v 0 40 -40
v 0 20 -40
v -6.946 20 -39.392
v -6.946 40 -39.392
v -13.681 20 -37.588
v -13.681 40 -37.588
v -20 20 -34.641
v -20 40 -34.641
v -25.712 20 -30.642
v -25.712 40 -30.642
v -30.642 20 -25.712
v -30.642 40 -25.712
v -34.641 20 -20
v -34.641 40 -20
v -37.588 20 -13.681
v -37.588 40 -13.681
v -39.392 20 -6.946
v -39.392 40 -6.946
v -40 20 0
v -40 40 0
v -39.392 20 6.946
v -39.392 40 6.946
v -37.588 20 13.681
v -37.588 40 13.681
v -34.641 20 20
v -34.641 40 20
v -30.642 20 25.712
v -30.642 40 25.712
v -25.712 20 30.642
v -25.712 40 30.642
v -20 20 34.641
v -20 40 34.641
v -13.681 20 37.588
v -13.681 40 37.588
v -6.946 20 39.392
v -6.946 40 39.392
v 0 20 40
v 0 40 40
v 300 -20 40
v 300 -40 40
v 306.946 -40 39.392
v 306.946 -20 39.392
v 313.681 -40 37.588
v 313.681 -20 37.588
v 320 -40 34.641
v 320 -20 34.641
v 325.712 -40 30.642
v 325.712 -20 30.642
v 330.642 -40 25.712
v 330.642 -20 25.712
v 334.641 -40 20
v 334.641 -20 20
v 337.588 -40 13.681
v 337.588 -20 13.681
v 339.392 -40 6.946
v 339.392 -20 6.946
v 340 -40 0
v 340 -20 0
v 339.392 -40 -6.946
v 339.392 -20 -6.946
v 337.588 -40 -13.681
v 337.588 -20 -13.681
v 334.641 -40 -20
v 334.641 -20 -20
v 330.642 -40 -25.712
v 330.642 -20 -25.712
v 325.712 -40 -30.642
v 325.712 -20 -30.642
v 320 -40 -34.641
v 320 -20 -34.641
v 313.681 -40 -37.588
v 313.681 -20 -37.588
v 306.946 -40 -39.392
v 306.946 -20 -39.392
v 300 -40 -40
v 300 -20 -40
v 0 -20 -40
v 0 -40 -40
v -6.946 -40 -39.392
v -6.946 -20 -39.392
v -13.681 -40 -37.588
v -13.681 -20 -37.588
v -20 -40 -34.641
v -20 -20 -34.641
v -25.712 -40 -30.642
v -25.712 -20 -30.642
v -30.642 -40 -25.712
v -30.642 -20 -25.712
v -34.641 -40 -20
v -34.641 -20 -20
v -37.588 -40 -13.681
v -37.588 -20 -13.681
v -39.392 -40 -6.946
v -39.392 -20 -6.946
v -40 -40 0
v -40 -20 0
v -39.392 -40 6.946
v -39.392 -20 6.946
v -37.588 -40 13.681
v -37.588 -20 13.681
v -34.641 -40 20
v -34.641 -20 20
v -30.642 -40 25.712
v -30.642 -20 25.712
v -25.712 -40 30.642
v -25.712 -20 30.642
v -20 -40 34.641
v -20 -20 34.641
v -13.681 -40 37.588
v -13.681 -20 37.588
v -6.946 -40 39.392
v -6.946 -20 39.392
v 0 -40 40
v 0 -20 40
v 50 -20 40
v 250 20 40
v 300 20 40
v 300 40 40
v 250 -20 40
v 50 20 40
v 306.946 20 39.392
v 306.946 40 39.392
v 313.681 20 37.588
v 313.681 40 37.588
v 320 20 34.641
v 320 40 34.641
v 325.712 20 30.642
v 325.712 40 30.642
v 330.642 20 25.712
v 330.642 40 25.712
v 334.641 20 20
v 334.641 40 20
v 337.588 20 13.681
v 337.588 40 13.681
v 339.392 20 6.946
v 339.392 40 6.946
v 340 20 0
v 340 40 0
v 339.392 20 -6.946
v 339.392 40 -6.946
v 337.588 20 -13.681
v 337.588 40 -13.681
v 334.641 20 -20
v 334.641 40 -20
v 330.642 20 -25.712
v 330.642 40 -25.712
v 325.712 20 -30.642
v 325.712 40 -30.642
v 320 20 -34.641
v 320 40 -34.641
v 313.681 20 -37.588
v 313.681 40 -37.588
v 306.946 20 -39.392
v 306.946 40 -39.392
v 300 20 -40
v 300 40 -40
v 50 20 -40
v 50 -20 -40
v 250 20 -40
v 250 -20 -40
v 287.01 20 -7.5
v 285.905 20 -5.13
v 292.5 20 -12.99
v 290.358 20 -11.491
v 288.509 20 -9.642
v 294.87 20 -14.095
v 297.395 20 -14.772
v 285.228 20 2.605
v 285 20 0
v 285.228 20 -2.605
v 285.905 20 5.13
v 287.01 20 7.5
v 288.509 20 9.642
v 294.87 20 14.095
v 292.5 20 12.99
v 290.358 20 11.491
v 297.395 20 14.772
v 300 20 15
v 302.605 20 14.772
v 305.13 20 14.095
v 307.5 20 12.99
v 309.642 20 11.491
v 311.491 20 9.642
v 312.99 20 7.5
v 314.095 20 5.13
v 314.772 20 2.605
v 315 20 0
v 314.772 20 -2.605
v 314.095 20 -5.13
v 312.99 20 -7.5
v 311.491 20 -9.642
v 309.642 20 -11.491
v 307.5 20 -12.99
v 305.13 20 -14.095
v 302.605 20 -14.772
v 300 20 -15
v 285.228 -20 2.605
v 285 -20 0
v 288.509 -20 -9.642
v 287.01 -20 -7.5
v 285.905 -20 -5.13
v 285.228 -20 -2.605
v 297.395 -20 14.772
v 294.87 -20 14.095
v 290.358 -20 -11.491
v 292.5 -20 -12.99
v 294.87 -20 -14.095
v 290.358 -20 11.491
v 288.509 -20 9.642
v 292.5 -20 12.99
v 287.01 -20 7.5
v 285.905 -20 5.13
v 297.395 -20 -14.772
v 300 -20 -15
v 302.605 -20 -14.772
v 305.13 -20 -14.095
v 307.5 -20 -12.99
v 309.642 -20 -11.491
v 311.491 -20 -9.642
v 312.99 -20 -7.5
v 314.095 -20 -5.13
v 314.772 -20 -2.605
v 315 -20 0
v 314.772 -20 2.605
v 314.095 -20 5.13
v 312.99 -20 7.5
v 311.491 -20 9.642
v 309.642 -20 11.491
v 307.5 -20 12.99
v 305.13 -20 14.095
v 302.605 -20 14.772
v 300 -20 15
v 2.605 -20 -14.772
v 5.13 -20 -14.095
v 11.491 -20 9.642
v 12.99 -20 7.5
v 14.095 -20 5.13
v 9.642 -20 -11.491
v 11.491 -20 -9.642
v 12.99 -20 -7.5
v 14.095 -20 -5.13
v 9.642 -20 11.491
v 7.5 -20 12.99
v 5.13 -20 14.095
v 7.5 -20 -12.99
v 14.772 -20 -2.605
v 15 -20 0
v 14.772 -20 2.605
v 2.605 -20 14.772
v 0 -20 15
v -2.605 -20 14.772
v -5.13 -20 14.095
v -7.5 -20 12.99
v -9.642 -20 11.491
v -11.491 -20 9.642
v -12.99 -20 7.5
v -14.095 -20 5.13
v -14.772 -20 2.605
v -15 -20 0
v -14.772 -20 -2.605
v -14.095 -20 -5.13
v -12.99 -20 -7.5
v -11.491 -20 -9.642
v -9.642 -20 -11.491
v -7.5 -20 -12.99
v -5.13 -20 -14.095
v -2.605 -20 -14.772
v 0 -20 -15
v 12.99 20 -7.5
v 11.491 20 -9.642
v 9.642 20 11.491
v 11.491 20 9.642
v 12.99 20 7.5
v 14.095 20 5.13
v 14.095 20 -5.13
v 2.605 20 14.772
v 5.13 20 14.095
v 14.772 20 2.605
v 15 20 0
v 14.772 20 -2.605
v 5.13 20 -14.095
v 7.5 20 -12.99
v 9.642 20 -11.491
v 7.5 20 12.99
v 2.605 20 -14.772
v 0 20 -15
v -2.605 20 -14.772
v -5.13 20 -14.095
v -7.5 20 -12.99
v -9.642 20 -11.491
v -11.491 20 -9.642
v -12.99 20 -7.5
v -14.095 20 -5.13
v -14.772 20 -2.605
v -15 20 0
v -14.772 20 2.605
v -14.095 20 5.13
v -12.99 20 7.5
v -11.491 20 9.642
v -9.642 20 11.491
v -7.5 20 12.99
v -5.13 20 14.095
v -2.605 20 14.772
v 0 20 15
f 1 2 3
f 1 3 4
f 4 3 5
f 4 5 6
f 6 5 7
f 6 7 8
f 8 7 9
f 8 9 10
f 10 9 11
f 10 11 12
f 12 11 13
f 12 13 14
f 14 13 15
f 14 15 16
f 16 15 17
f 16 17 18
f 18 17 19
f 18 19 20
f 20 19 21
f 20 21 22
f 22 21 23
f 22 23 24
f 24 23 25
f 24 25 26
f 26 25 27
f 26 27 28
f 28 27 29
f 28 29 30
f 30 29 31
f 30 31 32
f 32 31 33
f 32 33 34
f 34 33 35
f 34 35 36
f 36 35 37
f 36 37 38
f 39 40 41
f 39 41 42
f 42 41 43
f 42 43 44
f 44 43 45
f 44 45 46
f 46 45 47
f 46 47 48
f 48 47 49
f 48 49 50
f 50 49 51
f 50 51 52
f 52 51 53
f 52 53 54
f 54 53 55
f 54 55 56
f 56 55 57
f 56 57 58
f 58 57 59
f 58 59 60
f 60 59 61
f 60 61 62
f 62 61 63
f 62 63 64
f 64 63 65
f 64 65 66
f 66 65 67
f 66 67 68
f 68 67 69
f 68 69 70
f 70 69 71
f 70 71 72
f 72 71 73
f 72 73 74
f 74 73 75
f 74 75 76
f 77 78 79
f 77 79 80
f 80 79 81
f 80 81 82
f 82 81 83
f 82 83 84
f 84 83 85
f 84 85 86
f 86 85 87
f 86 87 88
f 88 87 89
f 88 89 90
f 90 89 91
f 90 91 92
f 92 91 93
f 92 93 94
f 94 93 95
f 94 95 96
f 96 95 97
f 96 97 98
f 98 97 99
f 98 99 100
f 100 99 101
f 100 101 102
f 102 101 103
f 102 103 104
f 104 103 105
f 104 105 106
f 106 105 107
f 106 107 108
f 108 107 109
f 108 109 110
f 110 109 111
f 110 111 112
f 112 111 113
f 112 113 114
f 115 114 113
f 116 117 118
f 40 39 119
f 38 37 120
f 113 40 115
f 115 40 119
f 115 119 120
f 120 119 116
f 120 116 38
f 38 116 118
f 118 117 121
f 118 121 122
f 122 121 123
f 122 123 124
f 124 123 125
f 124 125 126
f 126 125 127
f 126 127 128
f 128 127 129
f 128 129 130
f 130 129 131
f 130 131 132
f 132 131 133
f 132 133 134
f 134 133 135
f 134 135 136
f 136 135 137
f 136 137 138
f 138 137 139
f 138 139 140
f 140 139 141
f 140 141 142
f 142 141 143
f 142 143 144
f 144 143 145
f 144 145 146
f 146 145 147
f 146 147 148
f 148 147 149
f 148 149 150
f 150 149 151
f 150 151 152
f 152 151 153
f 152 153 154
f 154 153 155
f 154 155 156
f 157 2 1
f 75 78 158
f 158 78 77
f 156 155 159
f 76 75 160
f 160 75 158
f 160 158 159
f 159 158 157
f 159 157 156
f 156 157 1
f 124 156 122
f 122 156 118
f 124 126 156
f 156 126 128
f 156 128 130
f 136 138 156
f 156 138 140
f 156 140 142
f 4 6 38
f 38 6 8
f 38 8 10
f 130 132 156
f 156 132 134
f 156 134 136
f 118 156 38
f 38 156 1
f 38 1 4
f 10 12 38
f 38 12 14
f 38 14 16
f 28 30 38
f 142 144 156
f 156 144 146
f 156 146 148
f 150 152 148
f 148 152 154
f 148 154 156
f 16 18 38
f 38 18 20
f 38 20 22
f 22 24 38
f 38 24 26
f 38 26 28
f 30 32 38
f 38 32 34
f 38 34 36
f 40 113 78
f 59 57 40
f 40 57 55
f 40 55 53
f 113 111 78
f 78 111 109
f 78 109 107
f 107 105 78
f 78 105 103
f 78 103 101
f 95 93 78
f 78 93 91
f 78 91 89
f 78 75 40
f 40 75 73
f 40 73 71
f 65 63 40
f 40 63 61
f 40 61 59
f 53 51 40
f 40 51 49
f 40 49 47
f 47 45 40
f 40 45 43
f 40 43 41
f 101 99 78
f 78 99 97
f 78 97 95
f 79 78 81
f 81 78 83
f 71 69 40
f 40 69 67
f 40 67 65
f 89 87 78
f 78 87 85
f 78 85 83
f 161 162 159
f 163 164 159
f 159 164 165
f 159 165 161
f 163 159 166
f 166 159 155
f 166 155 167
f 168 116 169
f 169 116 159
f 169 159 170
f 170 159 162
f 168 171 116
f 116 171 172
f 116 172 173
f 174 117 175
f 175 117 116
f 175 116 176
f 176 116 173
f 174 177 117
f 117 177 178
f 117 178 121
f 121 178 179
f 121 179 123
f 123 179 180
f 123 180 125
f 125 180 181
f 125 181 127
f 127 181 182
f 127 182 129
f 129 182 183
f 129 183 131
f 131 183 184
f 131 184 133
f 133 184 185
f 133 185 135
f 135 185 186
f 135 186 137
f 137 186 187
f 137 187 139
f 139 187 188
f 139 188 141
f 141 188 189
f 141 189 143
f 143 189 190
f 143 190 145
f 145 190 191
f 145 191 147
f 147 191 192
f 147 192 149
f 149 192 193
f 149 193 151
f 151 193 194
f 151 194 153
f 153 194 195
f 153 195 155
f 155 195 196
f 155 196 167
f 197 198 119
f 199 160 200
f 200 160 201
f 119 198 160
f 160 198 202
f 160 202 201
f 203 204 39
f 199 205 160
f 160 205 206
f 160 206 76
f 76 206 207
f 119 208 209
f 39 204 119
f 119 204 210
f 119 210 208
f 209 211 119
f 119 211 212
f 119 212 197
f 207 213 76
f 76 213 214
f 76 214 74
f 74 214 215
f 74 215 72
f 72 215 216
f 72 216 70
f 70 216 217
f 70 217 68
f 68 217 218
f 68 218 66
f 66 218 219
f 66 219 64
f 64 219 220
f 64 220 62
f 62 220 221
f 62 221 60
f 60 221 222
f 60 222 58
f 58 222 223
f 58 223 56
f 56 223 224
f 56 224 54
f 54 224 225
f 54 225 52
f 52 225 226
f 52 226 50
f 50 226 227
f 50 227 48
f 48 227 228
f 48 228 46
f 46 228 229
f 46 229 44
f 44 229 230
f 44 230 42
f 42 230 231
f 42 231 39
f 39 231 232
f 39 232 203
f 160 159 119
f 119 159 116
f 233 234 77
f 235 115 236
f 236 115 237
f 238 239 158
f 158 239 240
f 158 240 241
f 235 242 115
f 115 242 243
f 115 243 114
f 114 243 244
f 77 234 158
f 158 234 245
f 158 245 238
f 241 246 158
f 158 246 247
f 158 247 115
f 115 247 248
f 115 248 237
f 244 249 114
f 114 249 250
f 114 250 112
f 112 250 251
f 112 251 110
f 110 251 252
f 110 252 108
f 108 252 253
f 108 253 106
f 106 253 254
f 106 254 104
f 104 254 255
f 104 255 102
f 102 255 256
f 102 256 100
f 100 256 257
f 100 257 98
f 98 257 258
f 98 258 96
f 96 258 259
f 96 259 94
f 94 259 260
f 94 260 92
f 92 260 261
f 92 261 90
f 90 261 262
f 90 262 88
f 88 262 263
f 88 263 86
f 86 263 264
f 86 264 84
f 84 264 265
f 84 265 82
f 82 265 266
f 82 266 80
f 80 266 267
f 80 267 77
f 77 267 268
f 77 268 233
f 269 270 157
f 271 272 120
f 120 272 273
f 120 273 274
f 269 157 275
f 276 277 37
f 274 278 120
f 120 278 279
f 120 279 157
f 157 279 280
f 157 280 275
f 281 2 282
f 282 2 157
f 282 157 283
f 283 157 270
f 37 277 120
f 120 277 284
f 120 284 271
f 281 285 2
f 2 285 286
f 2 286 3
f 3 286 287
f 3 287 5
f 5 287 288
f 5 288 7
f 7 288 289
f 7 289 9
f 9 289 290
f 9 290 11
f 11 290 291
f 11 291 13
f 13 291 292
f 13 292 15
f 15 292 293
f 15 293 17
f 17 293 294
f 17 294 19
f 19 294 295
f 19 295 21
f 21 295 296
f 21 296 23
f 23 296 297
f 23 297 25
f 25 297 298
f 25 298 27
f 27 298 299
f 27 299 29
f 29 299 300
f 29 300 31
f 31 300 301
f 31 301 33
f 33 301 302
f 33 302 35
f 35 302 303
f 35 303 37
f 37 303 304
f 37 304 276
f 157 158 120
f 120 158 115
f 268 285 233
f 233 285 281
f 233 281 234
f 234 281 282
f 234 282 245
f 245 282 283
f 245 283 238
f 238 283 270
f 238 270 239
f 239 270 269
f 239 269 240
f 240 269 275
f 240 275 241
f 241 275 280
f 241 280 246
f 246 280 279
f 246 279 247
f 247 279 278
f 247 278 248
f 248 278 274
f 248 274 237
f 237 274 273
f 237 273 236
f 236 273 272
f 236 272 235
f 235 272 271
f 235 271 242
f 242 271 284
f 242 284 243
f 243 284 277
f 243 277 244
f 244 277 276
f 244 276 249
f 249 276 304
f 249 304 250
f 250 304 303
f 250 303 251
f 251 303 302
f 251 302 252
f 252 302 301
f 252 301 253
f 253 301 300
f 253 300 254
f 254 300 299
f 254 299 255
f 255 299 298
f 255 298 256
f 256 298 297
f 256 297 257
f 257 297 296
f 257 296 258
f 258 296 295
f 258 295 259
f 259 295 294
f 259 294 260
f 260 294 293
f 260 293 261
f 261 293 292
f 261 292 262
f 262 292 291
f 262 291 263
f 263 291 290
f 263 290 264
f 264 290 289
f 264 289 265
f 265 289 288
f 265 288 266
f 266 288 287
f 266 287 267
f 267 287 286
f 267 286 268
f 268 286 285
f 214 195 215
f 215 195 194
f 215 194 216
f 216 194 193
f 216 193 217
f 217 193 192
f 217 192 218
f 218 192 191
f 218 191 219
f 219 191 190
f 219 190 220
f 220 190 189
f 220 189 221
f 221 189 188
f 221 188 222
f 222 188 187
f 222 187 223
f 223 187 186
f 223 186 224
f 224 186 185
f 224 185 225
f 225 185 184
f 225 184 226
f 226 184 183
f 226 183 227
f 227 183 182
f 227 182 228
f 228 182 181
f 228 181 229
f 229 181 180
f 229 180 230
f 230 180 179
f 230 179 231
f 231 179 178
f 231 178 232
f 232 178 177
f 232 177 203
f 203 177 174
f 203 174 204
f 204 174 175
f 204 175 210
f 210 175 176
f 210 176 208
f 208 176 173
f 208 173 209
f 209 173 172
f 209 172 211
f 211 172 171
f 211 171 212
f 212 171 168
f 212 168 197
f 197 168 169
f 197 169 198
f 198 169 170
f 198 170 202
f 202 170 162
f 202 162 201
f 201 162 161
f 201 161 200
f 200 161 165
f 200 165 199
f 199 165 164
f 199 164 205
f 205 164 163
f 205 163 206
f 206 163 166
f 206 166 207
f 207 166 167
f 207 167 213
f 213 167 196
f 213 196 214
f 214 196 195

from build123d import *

# Parameters (mm, degrees)
BOSS_EXTRUDE1_DEPTH     = 40
SKETCH3_W               = 90
SKETCH3_H               = 40
CUT_EXTRUDE_THIN1_DEPTH = 80
SKETCH4_R               = 15
BOSS_EXTRUDE2_DEPTH     = 80


with BuildPart() as part:
    # Sketch2 → Boss-Extrude1 (new, symmetric)
    with BuildSketch(Plane(origin=(0, 0, 0), x_dir=(1, 0, 0), z_dir=(0, 1, 0))):
        with BuildLine():
            Line((0, 40), (300, 40))
            ThreePointArc((300, 40), (340, 0), (300, -40))
            Line((300, -40), (0, -40))
            ThreePointArc((0, -40), (-40, 0), (0, 40))
        make_face()
    extrude(amount=BOSS_EXTRUDE1_DEPTH, both=True)

    # Sketch3 → Cut-Extrude-Thin1 (cut)
    with BuildSketch(Plane.XY.offset(40)):
        with Locations((5, 0)):
            Rectangle(SKETCH3_W, SKETCH3_H)
        with Locations((295, 0)):
            Rectangle(SKETCH3_W, SKETCH3_H)
    extrude(amount=-CUT_EXTRUDE_THIN1_DEPTH, mode=Mode.SUBTRACT)

    # Sketch4 → Boss-Extrude2 (add)
    with BuildSketch(Plane.XZ.offset(40)):
        Circle(SKETCH4_R)
        with Locations(Location((300, 0, 0), (0, 0, 180))):
            Circle(SKETCH4_R)
    extrude(amount=-BOSS_EXTRUDE2_DEPTH)


solid = part.part
